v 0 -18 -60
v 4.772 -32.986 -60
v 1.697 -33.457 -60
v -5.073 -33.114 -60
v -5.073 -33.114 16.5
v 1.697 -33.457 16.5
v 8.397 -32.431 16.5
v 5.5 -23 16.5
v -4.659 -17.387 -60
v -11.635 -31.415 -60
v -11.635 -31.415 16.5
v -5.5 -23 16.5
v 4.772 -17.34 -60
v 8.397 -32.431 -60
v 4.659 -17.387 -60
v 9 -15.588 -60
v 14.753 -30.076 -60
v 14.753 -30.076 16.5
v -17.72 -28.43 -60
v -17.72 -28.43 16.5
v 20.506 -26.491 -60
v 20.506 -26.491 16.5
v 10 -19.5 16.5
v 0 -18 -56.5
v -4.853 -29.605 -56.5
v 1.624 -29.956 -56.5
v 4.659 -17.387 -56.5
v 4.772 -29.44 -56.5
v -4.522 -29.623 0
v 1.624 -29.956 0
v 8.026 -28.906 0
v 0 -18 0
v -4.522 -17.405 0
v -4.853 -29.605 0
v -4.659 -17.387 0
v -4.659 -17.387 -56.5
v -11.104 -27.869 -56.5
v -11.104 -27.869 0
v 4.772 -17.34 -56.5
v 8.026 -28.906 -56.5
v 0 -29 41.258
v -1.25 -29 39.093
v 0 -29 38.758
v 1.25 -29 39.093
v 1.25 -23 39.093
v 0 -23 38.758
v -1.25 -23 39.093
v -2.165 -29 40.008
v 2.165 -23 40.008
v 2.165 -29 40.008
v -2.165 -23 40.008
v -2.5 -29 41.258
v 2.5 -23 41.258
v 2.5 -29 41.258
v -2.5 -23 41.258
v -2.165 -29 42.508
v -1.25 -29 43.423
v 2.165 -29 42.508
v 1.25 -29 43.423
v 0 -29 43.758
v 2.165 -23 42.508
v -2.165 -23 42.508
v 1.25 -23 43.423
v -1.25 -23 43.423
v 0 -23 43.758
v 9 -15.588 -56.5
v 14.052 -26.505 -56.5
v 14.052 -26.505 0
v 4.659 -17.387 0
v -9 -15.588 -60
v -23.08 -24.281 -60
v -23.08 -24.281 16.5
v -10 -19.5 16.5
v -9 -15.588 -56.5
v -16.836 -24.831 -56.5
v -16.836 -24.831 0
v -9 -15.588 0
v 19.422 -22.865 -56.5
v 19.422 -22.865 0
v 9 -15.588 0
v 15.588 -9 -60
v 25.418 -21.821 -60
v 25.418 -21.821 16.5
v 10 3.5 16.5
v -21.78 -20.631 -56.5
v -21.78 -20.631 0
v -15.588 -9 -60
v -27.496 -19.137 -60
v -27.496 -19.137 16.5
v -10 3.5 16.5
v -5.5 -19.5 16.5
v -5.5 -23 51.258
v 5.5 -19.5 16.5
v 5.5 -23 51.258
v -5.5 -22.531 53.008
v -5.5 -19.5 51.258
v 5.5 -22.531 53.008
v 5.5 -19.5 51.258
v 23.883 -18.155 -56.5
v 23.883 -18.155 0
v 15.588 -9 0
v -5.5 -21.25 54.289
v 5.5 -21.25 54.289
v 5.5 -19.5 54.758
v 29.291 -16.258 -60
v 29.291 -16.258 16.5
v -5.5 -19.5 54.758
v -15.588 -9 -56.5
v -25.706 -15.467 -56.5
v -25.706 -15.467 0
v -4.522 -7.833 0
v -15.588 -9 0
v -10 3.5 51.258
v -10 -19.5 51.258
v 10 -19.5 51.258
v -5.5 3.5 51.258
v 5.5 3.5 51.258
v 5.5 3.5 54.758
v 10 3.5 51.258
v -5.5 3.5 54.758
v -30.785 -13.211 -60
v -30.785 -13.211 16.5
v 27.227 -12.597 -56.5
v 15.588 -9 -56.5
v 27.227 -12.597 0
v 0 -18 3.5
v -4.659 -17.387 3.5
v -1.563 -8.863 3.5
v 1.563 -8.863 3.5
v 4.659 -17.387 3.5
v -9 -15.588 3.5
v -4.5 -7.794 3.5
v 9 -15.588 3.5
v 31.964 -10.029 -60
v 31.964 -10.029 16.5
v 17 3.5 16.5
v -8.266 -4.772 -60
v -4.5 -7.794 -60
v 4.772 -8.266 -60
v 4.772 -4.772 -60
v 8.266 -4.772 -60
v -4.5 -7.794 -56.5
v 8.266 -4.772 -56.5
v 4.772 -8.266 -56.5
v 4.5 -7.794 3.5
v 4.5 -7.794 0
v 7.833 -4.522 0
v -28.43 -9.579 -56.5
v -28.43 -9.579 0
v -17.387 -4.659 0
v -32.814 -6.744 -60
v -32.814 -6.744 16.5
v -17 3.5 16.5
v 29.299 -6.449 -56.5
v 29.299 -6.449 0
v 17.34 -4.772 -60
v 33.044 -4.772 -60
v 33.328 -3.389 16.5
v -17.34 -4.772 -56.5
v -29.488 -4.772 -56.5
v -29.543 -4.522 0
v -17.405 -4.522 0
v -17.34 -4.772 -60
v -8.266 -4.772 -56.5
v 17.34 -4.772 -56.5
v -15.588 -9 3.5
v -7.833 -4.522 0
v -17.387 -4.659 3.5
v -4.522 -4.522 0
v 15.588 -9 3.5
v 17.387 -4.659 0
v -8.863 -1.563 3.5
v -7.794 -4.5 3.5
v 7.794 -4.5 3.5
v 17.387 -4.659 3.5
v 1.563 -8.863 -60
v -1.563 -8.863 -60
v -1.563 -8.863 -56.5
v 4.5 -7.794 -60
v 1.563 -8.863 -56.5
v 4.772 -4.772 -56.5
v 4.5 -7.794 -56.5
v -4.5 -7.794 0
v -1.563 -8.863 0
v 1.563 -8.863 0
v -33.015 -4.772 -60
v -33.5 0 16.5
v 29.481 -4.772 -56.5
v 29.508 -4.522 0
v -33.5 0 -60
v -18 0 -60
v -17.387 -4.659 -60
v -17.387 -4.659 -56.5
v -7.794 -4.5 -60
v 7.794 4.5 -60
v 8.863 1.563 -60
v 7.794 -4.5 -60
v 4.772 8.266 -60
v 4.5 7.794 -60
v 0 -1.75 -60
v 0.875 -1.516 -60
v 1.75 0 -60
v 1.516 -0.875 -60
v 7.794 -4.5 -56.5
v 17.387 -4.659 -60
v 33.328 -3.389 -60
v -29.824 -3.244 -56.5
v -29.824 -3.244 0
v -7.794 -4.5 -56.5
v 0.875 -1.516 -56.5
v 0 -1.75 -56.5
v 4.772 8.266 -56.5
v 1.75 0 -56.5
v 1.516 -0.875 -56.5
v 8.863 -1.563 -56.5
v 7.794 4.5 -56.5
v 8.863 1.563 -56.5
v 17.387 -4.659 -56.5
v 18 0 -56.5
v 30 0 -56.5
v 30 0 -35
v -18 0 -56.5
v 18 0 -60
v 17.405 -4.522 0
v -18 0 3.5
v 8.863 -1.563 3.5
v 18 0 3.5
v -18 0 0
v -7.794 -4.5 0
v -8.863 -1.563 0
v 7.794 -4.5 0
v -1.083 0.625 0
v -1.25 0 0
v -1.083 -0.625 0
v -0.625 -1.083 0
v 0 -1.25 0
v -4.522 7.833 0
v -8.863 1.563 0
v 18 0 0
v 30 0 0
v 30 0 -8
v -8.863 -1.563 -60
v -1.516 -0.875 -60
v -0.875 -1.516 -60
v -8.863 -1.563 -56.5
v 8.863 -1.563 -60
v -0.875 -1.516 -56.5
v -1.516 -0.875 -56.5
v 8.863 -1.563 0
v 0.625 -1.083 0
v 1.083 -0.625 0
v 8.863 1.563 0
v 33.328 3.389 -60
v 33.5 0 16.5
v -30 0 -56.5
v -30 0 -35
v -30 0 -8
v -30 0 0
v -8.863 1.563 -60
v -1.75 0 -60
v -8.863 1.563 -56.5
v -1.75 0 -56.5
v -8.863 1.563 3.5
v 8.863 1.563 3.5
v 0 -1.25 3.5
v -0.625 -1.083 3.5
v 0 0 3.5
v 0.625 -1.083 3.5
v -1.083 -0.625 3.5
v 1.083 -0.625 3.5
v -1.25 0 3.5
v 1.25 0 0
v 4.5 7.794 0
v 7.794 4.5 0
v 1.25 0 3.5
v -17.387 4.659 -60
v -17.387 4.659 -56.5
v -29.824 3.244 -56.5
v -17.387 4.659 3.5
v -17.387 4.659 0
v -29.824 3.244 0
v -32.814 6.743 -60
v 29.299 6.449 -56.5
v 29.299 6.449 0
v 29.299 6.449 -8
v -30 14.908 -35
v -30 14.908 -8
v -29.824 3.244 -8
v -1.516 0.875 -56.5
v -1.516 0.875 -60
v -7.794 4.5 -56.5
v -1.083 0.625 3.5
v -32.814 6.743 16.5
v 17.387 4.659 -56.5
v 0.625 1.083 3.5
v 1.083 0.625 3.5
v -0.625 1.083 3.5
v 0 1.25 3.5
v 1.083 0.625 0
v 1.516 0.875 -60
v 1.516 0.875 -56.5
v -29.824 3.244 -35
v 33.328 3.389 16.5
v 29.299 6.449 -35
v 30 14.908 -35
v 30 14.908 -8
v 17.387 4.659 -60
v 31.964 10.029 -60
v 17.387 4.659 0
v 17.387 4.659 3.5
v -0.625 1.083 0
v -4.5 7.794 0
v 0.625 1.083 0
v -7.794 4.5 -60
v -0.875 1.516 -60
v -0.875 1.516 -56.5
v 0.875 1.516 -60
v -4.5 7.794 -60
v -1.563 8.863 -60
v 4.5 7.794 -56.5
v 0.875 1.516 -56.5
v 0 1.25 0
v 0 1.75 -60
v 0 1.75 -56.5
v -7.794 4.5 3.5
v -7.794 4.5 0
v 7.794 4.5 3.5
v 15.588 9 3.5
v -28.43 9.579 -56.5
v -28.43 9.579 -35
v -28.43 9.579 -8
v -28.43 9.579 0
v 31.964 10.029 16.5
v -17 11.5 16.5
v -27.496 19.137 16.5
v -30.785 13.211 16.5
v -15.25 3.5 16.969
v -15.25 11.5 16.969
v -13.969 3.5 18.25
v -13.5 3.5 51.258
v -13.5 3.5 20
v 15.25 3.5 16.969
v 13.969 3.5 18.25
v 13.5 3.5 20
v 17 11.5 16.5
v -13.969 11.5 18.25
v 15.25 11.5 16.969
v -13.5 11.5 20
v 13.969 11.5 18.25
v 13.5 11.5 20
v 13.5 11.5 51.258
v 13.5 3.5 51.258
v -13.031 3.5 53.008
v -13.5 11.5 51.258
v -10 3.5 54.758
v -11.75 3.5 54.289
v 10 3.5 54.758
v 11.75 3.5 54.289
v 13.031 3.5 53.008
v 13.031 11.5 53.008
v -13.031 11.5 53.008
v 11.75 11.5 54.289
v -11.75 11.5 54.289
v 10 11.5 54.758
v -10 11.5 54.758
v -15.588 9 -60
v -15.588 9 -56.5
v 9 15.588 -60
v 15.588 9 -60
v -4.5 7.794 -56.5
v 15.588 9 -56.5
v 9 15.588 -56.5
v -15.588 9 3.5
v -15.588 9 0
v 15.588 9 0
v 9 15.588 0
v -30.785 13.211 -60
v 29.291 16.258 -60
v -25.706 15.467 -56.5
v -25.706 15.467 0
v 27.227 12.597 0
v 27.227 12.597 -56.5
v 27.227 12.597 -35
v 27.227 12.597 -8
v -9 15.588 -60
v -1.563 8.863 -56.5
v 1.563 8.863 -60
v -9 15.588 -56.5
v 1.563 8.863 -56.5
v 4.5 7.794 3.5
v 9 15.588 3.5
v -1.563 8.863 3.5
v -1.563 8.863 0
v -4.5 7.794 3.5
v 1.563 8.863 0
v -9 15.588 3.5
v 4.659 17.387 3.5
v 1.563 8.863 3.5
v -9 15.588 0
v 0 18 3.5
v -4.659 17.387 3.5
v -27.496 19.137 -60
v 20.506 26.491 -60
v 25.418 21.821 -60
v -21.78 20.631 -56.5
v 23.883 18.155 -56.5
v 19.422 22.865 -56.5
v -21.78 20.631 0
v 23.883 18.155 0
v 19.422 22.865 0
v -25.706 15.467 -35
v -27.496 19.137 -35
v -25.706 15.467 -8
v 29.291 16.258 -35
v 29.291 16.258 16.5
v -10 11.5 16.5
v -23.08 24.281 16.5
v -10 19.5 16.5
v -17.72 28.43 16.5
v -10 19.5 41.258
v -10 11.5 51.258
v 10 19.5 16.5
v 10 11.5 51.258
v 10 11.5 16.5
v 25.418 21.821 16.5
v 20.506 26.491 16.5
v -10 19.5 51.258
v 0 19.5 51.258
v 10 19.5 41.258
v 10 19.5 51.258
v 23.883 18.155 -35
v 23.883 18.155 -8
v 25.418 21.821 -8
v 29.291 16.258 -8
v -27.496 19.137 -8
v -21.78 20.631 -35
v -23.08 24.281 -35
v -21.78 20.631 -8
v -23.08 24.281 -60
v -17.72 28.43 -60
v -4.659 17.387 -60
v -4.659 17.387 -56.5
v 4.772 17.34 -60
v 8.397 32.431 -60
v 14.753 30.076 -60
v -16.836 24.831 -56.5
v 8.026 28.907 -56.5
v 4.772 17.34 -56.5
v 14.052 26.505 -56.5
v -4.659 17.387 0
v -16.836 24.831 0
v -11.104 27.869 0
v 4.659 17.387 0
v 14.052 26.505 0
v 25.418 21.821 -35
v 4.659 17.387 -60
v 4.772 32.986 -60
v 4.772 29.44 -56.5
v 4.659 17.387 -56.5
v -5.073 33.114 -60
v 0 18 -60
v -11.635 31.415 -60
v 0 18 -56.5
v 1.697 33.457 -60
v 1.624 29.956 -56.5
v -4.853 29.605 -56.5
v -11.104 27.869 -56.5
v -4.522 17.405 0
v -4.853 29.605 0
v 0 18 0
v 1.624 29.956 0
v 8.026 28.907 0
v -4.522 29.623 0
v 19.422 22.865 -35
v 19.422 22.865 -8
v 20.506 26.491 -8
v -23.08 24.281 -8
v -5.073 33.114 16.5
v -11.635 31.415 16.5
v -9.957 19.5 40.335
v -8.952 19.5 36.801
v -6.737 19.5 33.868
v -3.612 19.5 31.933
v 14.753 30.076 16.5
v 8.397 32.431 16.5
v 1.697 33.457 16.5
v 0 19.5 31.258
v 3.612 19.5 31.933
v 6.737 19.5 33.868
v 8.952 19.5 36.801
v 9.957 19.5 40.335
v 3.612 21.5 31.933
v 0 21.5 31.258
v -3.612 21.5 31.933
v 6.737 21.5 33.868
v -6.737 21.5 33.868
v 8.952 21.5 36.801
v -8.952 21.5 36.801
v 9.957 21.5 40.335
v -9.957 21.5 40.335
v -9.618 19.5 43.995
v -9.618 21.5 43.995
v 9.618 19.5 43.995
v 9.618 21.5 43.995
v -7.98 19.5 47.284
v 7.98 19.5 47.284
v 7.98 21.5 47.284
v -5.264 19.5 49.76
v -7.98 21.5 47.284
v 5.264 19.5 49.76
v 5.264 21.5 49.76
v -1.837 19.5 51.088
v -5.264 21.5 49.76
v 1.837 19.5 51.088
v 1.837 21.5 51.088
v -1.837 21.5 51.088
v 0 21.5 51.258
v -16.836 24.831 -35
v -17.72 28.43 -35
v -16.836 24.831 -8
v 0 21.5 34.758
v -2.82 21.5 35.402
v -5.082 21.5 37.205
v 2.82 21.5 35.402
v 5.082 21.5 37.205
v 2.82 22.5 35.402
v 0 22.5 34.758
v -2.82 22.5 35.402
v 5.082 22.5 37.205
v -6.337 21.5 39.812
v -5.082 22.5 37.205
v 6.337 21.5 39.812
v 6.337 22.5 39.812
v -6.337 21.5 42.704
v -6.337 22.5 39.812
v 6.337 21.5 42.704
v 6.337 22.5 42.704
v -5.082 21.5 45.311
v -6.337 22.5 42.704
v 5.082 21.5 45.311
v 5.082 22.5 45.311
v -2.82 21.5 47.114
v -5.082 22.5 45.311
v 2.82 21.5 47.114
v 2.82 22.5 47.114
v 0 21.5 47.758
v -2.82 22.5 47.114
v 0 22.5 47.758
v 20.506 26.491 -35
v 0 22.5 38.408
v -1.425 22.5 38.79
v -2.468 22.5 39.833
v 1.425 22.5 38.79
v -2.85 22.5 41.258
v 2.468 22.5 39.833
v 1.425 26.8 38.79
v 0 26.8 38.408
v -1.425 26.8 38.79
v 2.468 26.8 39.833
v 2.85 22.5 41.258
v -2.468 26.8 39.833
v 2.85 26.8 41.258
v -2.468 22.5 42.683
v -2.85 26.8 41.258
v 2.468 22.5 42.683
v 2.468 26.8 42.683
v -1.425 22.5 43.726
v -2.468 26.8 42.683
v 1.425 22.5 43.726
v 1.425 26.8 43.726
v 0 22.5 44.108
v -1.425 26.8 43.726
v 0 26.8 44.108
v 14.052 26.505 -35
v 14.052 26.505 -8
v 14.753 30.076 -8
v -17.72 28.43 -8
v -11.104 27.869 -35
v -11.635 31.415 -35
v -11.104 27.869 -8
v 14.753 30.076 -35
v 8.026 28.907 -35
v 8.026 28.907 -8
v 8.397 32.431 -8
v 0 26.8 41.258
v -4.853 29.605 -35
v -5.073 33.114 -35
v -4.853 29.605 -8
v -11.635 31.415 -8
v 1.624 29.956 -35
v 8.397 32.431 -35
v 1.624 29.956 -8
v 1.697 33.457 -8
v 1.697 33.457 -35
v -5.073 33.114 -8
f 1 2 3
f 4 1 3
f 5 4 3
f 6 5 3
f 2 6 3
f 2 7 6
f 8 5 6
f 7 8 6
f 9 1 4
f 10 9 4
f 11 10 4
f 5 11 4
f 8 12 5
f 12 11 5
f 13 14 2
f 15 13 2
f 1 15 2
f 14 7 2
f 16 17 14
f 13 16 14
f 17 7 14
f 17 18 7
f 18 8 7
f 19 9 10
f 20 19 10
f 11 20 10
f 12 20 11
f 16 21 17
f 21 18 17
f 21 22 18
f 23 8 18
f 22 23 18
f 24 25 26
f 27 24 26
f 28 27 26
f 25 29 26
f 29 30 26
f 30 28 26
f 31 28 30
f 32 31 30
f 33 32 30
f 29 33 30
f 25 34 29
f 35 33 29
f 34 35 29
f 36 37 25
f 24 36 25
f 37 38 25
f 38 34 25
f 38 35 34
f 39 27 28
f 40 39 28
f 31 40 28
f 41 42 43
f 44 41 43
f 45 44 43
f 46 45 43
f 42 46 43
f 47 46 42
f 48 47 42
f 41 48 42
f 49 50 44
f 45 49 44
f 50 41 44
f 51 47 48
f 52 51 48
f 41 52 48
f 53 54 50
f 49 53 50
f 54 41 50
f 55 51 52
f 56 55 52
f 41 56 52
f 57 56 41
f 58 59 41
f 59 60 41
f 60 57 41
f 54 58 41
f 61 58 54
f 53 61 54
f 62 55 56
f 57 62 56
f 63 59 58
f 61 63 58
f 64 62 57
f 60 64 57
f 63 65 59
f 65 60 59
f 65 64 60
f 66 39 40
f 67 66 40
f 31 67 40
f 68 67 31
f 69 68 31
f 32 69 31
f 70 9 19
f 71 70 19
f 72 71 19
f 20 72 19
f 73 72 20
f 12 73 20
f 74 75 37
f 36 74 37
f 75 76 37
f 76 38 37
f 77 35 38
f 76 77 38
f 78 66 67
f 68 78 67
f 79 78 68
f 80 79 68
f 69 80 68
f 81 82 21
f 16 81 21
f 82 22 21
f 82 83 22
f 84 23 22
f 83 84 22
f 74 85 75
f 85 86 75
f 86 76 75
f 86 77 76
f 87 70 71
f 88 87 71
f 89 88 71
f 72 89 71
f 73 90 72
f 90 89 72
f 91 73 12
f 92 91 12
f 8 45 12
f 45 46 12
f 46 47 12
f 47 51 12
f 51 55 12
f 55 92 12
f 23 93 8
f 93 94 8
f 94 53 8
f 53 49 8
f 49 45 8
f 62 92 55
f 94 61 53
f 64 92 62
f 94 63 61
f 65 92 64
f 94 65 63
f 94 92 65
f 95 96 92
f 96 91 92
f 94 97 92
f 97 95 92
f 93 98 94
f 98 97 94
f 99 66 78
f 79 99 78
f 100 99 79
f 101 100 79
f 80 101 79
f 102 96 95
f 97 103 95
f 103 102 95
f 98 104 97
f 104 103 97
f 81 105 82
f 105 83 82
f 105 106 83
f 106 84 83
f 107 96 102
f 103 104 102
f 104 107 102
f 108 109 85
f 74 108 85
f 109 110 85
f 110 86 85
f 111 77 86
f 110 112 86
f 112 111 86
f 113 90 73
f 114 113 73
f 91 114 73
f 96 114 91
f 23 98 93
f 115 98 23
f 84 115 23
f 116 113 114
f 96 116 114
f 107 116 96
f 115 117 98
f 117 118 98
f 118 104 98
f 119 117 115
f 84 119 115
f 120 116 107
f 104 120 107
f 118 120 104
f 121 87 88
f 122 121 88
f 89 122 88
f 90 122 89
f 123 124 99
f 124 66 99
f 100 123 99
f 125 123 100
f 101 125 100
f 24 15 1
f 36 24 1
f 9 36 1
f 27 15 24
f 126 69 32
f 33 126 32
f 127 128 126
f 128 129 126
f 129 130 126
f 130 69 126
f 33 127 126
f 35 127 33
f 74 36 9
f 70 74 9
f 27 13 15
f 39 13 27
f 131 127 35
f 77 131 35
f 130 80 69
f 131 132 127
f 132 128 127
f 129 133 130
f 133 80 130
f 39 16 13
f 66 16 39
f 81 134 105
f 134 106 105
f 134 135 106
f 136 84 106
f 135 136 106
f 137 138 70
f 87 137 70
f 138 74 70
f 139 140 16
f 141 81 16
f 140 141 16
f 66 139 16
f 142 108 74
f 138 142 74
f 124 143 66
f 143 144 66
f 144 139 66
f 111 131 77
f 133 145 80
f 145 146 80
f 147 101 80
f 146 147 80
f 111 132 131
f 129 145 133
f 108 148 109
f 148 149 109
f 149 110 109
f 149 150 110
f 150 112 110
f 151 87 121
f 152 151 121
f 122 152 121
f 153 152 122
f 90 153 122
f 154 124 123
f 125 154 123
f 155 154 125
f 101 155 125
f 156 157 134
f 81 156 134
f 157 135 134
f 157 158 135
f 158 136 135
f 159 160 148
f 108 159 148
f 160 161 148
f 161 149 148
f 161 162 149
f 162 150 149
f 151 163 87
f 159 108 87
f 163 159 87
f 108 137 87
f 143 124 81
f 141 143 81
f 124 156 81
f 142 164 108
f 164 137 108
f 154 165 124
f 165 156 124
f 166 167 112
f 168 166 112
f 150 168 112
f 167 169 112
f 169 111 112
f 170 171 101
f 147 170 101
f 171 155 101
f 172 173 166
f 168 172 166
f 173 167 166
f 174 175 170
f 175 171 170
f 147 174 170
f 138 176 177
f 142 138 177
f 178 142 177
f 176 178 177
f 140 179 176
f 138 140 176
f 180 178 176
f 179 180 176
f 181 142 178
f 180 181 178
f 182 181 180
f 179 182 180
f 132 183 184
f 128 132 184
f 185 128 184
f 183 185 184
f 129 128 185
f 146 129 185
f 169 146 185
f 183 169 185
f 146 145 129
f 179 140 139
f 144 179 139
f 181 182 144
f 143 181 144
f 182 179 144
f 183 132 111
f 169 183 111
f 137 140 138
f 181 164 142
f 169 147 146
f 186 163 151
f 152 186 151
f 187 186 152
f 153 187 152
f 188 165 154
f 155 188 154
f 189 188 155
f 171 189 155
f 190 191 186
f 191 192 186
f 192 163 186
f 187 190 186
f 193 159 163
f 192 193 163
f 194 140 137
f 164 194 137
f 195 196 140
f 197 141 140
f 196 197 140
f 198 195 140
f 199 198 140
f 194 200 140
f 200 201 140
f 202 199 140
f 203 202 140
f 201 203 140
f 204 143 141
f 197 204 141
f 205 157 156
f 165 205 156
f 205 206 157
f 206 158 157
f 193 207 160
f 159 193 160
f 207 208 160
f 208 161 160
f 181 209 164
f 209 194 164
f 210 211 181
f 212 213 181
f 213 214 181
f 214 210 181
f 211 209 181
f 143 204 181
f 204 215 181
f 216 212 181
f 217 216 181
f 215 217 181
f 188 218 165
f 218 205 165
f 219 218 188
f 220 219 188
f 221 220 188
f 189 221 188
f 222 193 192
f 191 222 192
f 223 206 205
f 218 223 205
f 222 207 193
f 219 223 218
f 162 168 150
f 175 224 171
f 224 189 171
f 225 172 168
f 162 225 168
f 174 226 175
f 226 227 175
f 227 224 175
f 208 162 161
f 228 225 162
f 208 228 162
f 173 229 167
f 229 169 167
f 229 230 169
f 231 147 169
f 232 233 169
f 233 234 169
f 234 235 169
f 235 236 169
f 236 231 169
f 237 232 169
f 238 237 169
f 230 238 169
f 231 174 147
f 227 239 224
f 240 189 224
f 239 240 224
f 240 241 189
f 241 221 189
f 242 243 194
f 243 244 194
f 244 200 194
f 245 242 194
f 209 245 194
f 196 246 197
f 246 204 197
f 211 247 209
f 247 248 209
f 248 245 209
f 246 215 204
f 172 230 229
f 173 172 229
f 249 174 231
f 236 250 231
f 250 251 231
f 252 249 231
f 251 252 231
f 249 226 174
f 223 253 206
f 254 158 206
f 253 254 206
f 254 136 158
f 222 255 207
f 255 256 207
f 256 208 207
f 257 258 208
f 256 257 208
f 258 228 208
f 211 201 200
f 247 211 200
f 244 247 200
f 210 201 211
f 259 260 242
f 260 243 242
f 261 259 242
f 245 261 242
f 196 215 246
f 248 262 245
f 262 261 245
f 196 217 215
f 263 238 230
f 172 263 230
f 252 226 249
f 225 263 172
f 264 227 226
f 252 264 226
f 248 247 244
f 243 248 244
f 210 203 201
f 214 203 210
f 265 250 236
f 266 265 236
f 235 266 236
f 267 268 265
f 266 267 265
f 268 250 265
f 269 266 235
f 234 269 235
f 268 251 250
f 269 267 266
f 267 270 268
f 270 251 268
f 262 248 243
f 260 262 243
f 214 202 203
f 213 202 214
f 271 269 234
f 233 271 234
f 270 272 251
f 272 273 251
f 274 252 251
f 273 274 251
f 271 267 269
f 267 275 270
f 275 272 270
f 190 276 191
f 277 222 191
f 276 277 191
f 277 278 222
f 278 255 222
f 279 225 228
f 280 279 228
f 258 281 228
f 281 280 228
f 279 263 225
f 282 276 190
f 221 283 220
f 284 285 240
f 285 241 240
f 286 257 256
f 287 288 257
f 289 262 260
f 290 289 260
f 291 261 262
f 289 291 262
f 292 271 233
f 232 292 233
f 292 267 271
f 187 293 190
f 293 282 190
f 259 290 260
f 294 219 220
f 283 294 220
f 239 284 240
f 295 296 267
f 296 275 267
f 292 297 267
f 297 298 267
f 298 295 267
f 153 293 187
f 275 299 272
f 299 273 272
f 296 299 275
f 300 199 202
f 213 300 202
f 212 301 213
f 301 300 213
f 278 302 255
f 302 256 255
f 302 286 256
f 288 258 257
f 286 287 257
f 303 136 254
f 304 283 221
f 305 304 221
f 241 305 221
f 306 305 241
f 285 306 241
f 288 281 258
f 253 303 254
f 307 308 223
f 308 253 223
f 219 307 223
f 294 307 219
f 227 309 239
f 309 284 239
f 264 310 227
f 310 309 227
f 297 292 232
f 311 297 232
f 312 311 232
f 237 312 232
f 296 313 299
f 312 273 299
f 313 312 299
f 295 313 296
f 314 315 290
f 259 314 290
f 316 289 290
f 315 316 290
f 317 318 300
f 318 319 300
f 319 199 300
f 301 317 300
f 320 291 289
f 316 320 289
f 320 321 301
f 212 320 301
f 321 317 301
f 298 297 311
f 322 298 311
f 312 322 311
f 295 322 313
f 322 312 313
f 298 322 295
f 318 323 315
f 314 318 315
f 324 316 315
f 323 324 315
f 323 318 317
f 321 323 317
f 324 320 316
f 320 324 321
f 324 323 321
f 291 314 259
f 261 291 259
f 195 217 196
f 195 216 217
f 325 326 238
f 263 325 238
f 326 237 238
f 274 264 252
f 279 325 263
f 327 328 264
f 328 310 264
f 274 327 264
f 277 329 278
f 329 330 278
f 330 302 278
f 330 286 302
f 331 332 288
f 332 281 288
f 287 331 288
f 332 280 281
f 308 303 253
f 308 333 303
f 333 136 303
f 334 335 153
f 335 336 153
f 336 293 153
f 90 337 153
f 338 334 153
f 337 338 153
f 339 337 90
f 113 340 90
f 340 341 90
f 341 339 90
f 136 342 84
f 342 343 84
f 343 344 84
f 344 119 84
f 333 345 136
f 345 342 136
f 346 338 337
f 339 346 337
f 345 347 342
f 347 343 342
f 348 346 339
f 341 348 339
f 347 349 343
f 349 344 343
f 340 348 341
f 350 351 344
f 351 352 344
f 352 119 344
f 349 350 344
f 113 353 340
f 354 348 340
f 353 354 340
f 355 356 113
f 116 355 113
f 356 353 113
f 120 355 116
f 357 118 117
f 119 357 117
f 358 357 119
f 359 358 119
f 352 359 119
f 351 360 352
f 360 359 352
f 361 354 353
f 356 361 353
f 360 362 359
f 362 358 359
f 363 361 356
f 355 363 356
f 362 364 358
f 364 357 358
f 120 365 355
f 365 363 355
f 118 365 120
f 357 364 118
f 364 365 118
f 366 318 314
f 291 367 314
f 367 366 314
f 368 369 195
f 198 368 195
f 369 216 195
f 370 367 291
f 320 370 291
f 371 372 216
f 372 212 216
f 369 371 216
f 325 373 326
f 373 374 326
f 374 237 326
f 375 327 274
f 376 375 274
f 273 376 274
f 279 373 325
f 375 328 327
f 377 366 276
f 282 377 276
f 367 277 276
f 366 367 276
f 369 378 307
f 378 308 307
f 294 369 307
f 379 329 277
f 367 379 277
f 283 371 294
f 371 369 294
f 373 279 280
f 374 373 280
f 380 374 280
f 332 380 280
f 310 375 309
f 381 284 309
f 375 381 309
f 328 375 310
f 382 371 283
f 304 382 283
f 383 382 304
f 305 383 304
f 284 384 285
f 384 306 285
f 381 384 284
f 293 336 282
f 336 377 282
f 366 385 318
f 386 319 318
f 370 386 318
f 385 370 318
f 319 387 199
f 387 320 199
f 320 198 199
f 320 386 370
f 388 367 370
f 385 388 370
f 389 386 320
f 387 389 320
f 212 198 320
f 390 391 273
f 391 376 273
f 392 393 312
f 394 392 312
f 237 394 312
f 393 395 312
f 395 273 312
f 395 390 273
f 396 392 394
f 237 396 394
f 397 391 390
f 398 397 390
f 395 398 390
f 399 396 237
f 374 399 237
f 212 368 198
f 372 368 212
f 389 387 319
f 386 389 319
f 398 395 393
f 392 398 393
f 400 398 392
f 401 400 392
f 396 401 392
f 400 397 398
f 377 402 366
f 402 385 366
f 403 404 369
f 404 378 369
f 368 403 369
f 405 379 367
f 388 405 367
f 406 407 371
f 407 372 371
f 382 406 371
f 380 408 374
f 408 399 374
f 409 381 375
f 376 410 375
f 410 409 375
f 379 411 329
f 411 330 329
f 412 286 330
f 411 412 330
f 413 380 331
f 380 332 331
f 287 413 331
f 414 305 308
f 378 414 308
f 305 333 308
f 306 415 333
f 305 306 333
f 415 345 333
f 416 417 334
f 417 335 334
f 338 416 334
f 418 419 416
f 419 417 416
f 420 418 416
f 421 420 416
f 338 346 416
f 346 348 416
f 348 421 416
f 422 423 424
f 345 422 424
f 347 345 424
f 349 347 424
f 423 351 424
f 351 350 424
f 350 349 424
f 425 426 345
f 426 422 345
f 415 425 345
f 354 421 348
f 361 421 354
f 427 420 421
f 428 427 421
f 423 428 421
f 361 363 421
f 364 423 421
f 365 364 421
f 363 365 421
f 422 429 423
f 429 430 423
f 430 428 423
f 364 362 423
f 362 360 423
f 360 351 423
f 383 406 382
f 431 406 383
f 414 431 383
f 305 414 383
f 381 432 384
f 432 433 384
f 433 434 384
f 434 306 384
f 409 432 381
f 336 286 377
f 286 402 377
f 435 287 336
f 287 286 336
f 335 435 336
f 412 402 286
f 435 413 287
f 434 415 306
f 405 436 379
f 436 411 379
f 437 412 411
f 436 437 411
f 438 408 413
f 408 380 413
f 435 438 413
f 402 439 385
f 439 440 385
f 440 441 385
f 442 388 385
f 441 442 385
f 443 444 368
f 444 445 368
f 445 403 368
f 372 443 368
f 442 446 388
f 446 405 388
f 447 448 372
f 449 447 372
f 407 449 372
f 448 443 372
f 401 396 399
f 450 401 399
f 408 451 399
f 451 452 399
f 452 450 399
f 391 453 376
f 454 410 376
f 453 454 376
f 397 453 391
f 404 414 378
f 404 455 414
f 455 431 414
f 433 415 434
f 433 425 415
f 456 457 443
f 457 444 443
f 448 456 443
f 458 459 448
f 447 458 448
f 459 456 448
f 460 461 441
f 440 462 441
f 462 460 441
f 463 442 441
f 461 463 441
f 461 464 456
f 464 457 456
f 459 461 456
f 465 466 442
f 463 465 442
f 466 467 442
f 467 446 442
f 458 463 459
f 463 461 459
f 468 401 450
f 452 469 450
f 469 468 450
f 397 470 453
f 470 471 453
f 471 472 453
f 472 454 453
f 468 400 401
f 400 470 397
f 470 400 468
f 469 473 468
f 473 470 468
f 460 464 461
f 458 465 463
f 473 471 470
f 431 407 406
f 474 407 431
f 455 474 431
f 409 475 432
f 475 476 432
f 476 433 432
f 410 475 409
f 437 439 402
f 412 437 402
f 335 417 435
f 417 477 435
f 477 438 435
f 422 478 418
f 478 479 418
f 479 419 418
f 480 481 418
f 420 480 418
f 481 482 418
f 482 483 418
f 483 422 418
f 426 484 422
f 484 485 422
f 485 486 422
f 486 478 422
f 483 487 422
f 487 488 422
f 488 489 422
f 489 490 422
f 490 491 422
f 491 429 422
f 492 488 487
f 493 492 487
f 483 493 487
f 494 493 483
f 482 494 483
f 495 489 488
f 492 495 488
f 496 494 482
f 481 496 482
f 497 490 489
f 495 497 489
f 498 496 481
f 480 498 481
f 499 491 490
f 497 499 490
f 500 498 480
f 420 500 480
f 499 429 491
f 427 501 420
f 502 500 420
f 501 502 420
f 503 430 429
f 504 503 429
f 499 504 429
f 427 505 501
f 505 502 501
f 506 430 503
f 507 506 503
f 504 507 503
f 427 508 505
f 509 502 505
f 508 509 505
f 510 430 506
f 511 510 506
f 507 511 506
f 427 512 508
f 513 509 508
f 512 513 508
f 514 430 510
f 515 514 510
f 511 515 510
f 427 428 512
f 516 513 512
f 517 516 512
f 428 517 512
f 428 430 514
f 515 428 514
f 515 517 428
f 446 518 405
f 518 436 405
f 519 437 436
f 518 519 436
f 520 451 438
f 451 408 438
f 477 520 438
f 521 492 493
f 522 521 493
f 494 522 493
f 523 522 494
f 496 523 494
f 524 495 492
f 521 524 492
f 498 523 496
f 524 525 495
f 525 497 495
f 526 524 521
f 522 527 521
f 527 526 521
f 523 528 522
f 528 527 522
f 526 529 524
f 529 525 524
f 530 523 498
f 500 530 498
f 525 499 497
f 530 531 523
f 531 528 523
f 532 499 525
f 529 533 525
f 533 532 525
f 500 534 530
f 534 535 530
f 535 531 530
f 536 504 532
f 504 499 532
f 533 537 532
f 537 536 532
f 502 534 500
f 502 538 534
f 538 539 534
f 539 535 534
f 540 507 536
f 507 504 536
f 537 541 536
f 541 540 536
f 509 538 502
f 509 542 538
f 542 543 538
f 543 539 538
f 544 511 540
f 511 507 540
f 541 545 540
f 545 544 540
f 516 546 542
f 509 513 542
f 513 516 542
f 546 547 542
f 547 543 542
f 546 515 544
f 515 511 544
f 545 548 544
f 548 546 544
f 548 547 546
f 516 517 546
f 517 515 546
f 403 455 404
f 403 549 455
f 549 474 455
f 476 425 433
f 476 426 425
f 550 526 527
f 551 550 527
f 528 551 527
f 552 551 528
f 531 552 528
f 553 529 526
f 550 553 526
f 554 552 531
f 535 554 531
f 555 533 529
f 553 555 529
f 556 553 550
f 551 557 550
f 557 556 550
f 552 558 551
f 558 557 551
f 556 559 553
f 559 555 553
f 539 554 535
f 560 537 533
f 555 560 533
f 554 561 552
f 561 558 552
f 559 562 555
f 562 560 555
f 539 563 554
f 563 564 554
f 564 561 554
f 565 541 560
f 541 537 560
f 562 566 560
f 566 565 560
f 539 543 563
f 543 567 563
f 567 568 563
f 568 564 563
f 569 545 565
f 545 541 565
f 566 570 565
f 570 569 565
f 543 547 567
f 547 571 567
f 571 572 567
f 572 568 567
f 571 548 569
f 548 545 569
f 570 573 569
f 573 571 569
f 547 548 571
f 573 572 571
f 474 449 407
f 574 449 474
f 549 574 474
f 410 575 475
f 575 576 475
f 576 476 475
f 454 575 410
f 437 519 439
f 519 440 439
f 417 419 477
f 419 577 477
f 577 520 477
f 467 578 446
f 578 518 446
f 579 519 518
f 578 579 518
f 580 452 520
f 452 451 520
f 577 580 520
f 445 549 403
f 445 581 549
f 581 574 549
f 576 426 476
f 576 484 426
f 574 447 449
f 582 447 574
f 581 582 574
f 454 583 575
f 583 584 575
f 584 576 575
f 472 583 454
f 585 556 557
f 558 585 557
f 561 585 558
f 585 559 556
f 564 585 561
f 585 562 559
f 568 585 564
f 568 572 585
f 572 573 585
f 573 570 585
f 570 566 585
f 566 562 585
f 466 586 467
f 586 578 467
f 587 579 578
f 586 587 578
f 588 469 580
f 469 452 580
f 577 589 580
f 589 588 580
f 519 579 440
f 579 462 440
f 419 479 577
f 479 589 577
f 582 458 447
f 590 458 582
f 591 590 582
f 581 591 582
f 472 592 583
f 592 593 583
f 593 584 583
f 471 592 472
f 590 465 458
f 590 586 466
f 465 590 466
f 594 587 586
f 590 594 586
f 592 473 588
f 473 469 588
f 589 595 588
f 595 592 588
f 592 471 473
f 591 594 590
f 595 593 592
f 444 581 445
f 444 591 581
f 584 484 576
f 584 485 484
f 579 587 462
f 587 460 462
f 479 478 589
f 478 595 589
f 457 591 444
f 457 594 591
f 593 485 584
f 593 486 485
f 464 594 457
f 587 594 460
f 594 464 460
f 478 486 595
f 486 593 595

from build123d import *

# Parameters (mm, degrees)
SKETCH1_R            = 33.5
BOSS_EXTRUDE3_DEPTH  = 16.5
SKETCH2_W            = 20
SKETCH2_H            = 39
BOSS_EXTRUDE4_DEPTH  = 34.758
SKETCH3_R            = 10
SKETCH3_R_2          = 6.5
BOSS_EXTRUDE5_DEPTH  = 2
SKETCH3_3_R          = 6.5
BOSS_EXTRUDE6_DEPTH  = 3
SKETCH3_4_R          = 2.85
BOSS_EXTRUDE7_DEPTH  = 7.3
SKETCH5_W            = 11
SKETCH5_H            = 3.5
SKETCH5_W_2          = 3.5
SKETCH5_H_2          = 8
BOSS_EXTRUDE8_DEPTH  = 34.758
SKETCH6_W            = 11
SKETCH6_H            = 8
BOSS_EXTRUDE9_DEPTH  = 3.5
SKETCH7_R            = 2.5
BOSS_EXTRUDE10_DEPTH = 6
FILLET1_R            = 3.5
FILLET2_R            = 3.5
FILLET3_R            = 3.5
FILLET4_R            = 3.5
CUT_EXTRUDE11_DEPTH  = 3.5
CIRPATTERN4_COUNT    = 4
SKETCH14_3_R         = 1.25
CUT_EXTRUDE12_DEPTH  = 3.5
BOSS_EXTRUDE15_START = 60
SKETCH16_R           = 33.5
SKETCH16_R_2         = 30
BOSS_EXTRUDE15_DEPTH = 60
SKETCH17_W           = 60
SKETCH17_H           = 27
CUT_EXTRUDE13_DEPTH  = 33.5
SKETCH18_R           = 33.5
BOSS_EXTRUDE16_DEPTH = 3.5
CUT_EXTRUDE14_DEPTH  = 3.5
CIRPATTERN5_COUNT    = 4
CUT_EXTRUDE15_DEPTH  = 3.5


with BuildPart() as part:
    # Sketch1 → Boss-Extrude3 (new body)
    with BuildSketch(Plane.XY):
        Circle(SKETCH1_R)
    extrude(amount=BOSS_EXTRUDE3_DEPTH)

    # Sketch2 → Boss-Extrude4 (add)
    with BuildSketch(Plane.XY.offset(16.5)):
        Rectangle(SKETCH2_W, SKETCH2_H)
    extrude(amount=BOSS_EXTRUDE4_DEPTH)

    # Sketch3 → Boss-Extrude5 (add)
    with BuildSketch(Plane(origin=(0, 19.5, 0), x_dir=(1, 0, 0), z_dir=(0, 1, 0))):
        with Locations(Location((0, -41.258, 0), (0, 0, 270))):
            Circle(SKETCH3_R)
        with Locations(Location((0, -41.258, 0), (0, 0, 270))):
            Circle(SKETCH3_R_2, mode=Mode.SUBTRACT)
    extrude(amount=BOSS_EXTRUDE5_DEPTH)

    # Sketch3<3> → Boss-Extrude6 (add)
    with BuildSketch(Plane(origin=(0, 19.5, 0), x_dir=(1, 0, 0), z_dir=(0, 1, 0))):
        with Locations(Location((0, -41.258, 0), (0, 0, 270))):
            Circle(SKETCH3_3_R)
    extrude(amount=BOSS_EXTRUDE6_DEPTH)

    # Sketch3<4> → Boss-Extrude7 (add)
    with BuildSketch(Plane(origin=(0, 19.5, 0), x_dir=(1, 0, 0), z_dir=(0, 1, 0))):
        with Locations(Location((0, -41.258, 0), (0, 0, 270))):
            Circle(SKETCH3_4_R)
    extrude(amount=BOSS_EXTRUDE7_DEPTH)

    # Sketch5 → Boss-Extrude8 (add)
    with BuildSketch(Plane.XY.offset(51.258)):
        with Locations((0, -21.25)):
            Rectangle(SKETCH5_W, SKETCH5_H)
        with Locations((11.75, 7.5)):
            Rectangle(SKETCH5_W_2, SKETCH5_H_2)
        with Locations((-11.75, 7.5)):
            Rectangle(SKETCH5_W_2, SKETCH5_H_2)
    extrude(amount=-BOSS_EXTRUDE8_DEPTH)

    # Sketch6 → Boss-Extrude9 (add)
    with BuildSketch(Plane.XY.offset(51.258)):
        with Locations((0, 7.5)):
            Rectangle(SKETCH6_W, SKETCH6_H)
        Polygon((10, 11.5), (5.5, 11.5), (5.5, 3.5), (10, 3.5), (13.5, 3.5), (13.5, 11.5), align=None)
        Polygon((5.5, 3.5), (-5.5, 3.5), (-5.5, -19.5), (-5.5, -23), (5.5, -23), (5.5, -19.5), align=None)
        Polygon((-10, 11.5), (-13.5, 11.5), (-13.5, 3.5), (-10, 3.5), (-5.5, 3.5), (-5.5, 11.5), align=None)
    extrude(amount=BOSS_EXTRUDE9_DEPTH)

    # Sketch7 → Boss-Extrude10 (add)
    with BuildSketch(Plane.XZ.offset(23)):
        with Locations(Location((0, 41.258, 0), (0, 0, 270))):
            Circle(SKETCH7_R)
    extrude(amount=BOSS_EXTRUDE10_DEPTH)

    # Fillet1
    fillet1_edges = [part.edges().sort_by_distance(p)[0] for p in [
        (-13.5, 7.5, 54.758),
        (13.5, 7.5, 54.758),
    ]]
    fillet(fillet1_edges, radius=FILLET1_R)

    # Fillet2
    fillet2_edges = [part.edges().sort_by_distance(p)[0] for p in [
        (0, -23, 54.758),
    ]]
    fillet(fillet2_edges, radius=FILLET2_R)

    # Fillet3
    fillet3_edges = [part.edges().sort_by_distance(p)[0] for p in [
        (13.5, 7.5, 16.5),
    ]]
    fillet(fillet3_edges, radius=FILLET3_R)

    # Fillet4
    fillet4_edges = [part.edges().sort_by_distance(p)[0] for p in [
        (-13.5, 7.5, 16.5),
    ]]
    fillet(fillet4_edges, radius=FILLET4_R)

    # Sketch14 → Cut-Extrude11 (cut)
    with BuildSketch(Plane(origin=(0, 0, 0), x_dir=(-1, 0, 0), z_dir=(0, 0, -1))):
        with BuildLine():
            Line((0, 18), (0, 9))
            ThreePointArc((0, 9), (2.329371406, 8.693332437), (4.5, 7.794228634))
            Line((4.5, 7.794228634), (9, 15.588457268))
            ThreePointArc((9, 15.588457268), (4.658742812, 17.386664873), (0, 18))
        make_face()
        with BuildLine():
            ThreePointArc((-4.5, 7.794228634), (-2.329371406, 8.693332437), (0, 9))
            Line((0, 9), (0, 18))
            ThreePointArc((0, 18), (-4.658742812, 17.386664873), (-9, 15.588457268))
            Line((-9, 15.588457268), (-4.5, 7.794228634))
        make_face()
    cut_extrude11 = extrude(amount=-CUT_EXTRUDE11_DEPTH, mode=Mode.SUBTRACT)

    # CirPattern4: Cut-Extrude11 ×4 about axis
    cirpattern4_axis = Axis((0, 0, 0), (0, 0, 1))
    for i in range(1, CIRPATTERN4_COUNT):
        add(cut_extrude11.rotate(cirpattern4_axis, i * 360 / CIRPATTERN4_COUNT), mode=Mode.SUBTRACT)

    # Sketch14<3> → Cut-Extrude12 (cut)
    with BuildSketch(Plane(origin=(0, 0, 0), x_dir=(-1, 0, 0), z_dir=(0, 0, -1))):
        Circle(SKETCH14_3_R)
    extrude(amount=-CUT_EXTRUDE12_DEPTH, mode=Mode.SUBTRACT)

    # Sketch16 → Boss-Extrude15 (add)
    with BuildSketch(Plane(origin=(0, 0, 0), x_dir=(-1, 0, 0), z_dir=(0, 0, -1)).offset(BOSS_EXTRUDE15_START)):
        Circle(SKETCH16_R)
        Circle(SKETCH16_R_2, mode=Mode.SUBTRACT)
    extrude(amount=-BOSS_EXTRUDE15_DEPTH)

    # Sketch17 → Cut-Extrude13 (cut)
    with BuildSketch(Plane(origin=(0, 33.5, 0), x_dir=(1, 0, 0), z_dir=(0, 1, 0))):
        with Locations((0, 21.5)):
            Rectangle(SKETCH17_W, SKETCH17_H)
    extrude(amount=-CUT_EXTRUDE13_DEPTH, mode=Mode.SUBTRACT)

    # Sketch18 → Boss-Extrude16 (add)
    with BuildSketch(Plane(origin=(0, 0, -60), x_dir=(-1, 0, 0), z_dir=(0, 0, -1))):
        Circle(SKETCH18_R)
    extrude(amount=-BOSS_EXTRUDE16_DEPTH)

    # Sketch18<3> → Cut-Extrude14 (cut)
    with BuildSketch(Plane(origin=(0, 0, -60), x_dir=(-1, 0, 0), z_dir=(0, 0, -1))):
        with BuildLine():
            ThreePointArc((-4.5, 7.794228634), (-2.329371406, 8.693332437), (0, 9))
            Line((0, 9), (0, 18))
            ThreePointArc((0, 18), (-4.658742812, 17.386664873), (-9, 15.588457268))
            Line((-9, 15.588457268), (-4.5, 7.794228634))
        make_face()
        with BuildLine():
            Line((0, 18), (0, 9))
            ThreePointArc((0, 9), (2.329371406, 8.693332437), (4.5, 7.794228634))
            Line((4.5, 7.794228634), (9, 15.588457268))
            ThreePointArc((9, 15.588457268), (4.658742812, 17.386664873), (0, 18))
        make_face()
    cut_extrude14 = extrude(amount=-CUT_EXTRUDE14_DEPTH, mode=Mode.SUBTRACT)

    # CirPattern5: Cut-Extrude14 ×4 about axis
    cirpattern5_axis = Axis((0, 0, 16.5), (0, 0, -1))
    for i in range(1, CIRPATTERN5_COUNT):
        add(cut_extrude14.rotate(cirpattern5_axis, i * 360 / CIRPATTERN5_COUNT), mode=Mode.SUBTRACT)

    # Sketch18<4> → Cut-Extrude15 (cut)
    with BuildSketch(Plane(origin=(0, 0, -60), x_dir=(-1, 0, 0), z_dir=(0, 0, -1))):
        with BuildLine():
            Line((0, 1.75), (0, 0))
            Line((0, 0), (0.875, 1.515544457))
            ThreePointArc((0.875, 1.515544457), (0.452933329, 1.690370196), (0, 1.75))
        make_face()
        with BuildLine():
            Line((-0.875, 1.515544457), (0, 0))
            Line((0, 0), (0, 1.75))
            ThreePointArc((0, 1.75), (-0.452933329, 1.690370196), (-0.875, 1.515544457))
        make_face()
        with BuildLine():
            Line((0.875, 1.515544457), (0, 0))
            Line((0, 0), (-0.875, 1.515544457))
            ThreePointArc((-0.875, 1.515544457), (-0.875, -1.515544457), (1.75, 0))
            ThreePointArc((1.75, 0), (1.515544457, 0.875), (0.875, 1.515544457))
        make_face()
    extrude(amount=-CUT_EXTRUDE15_DEPTH, mode=Mode.SUBTRACT)


solid = part.part
